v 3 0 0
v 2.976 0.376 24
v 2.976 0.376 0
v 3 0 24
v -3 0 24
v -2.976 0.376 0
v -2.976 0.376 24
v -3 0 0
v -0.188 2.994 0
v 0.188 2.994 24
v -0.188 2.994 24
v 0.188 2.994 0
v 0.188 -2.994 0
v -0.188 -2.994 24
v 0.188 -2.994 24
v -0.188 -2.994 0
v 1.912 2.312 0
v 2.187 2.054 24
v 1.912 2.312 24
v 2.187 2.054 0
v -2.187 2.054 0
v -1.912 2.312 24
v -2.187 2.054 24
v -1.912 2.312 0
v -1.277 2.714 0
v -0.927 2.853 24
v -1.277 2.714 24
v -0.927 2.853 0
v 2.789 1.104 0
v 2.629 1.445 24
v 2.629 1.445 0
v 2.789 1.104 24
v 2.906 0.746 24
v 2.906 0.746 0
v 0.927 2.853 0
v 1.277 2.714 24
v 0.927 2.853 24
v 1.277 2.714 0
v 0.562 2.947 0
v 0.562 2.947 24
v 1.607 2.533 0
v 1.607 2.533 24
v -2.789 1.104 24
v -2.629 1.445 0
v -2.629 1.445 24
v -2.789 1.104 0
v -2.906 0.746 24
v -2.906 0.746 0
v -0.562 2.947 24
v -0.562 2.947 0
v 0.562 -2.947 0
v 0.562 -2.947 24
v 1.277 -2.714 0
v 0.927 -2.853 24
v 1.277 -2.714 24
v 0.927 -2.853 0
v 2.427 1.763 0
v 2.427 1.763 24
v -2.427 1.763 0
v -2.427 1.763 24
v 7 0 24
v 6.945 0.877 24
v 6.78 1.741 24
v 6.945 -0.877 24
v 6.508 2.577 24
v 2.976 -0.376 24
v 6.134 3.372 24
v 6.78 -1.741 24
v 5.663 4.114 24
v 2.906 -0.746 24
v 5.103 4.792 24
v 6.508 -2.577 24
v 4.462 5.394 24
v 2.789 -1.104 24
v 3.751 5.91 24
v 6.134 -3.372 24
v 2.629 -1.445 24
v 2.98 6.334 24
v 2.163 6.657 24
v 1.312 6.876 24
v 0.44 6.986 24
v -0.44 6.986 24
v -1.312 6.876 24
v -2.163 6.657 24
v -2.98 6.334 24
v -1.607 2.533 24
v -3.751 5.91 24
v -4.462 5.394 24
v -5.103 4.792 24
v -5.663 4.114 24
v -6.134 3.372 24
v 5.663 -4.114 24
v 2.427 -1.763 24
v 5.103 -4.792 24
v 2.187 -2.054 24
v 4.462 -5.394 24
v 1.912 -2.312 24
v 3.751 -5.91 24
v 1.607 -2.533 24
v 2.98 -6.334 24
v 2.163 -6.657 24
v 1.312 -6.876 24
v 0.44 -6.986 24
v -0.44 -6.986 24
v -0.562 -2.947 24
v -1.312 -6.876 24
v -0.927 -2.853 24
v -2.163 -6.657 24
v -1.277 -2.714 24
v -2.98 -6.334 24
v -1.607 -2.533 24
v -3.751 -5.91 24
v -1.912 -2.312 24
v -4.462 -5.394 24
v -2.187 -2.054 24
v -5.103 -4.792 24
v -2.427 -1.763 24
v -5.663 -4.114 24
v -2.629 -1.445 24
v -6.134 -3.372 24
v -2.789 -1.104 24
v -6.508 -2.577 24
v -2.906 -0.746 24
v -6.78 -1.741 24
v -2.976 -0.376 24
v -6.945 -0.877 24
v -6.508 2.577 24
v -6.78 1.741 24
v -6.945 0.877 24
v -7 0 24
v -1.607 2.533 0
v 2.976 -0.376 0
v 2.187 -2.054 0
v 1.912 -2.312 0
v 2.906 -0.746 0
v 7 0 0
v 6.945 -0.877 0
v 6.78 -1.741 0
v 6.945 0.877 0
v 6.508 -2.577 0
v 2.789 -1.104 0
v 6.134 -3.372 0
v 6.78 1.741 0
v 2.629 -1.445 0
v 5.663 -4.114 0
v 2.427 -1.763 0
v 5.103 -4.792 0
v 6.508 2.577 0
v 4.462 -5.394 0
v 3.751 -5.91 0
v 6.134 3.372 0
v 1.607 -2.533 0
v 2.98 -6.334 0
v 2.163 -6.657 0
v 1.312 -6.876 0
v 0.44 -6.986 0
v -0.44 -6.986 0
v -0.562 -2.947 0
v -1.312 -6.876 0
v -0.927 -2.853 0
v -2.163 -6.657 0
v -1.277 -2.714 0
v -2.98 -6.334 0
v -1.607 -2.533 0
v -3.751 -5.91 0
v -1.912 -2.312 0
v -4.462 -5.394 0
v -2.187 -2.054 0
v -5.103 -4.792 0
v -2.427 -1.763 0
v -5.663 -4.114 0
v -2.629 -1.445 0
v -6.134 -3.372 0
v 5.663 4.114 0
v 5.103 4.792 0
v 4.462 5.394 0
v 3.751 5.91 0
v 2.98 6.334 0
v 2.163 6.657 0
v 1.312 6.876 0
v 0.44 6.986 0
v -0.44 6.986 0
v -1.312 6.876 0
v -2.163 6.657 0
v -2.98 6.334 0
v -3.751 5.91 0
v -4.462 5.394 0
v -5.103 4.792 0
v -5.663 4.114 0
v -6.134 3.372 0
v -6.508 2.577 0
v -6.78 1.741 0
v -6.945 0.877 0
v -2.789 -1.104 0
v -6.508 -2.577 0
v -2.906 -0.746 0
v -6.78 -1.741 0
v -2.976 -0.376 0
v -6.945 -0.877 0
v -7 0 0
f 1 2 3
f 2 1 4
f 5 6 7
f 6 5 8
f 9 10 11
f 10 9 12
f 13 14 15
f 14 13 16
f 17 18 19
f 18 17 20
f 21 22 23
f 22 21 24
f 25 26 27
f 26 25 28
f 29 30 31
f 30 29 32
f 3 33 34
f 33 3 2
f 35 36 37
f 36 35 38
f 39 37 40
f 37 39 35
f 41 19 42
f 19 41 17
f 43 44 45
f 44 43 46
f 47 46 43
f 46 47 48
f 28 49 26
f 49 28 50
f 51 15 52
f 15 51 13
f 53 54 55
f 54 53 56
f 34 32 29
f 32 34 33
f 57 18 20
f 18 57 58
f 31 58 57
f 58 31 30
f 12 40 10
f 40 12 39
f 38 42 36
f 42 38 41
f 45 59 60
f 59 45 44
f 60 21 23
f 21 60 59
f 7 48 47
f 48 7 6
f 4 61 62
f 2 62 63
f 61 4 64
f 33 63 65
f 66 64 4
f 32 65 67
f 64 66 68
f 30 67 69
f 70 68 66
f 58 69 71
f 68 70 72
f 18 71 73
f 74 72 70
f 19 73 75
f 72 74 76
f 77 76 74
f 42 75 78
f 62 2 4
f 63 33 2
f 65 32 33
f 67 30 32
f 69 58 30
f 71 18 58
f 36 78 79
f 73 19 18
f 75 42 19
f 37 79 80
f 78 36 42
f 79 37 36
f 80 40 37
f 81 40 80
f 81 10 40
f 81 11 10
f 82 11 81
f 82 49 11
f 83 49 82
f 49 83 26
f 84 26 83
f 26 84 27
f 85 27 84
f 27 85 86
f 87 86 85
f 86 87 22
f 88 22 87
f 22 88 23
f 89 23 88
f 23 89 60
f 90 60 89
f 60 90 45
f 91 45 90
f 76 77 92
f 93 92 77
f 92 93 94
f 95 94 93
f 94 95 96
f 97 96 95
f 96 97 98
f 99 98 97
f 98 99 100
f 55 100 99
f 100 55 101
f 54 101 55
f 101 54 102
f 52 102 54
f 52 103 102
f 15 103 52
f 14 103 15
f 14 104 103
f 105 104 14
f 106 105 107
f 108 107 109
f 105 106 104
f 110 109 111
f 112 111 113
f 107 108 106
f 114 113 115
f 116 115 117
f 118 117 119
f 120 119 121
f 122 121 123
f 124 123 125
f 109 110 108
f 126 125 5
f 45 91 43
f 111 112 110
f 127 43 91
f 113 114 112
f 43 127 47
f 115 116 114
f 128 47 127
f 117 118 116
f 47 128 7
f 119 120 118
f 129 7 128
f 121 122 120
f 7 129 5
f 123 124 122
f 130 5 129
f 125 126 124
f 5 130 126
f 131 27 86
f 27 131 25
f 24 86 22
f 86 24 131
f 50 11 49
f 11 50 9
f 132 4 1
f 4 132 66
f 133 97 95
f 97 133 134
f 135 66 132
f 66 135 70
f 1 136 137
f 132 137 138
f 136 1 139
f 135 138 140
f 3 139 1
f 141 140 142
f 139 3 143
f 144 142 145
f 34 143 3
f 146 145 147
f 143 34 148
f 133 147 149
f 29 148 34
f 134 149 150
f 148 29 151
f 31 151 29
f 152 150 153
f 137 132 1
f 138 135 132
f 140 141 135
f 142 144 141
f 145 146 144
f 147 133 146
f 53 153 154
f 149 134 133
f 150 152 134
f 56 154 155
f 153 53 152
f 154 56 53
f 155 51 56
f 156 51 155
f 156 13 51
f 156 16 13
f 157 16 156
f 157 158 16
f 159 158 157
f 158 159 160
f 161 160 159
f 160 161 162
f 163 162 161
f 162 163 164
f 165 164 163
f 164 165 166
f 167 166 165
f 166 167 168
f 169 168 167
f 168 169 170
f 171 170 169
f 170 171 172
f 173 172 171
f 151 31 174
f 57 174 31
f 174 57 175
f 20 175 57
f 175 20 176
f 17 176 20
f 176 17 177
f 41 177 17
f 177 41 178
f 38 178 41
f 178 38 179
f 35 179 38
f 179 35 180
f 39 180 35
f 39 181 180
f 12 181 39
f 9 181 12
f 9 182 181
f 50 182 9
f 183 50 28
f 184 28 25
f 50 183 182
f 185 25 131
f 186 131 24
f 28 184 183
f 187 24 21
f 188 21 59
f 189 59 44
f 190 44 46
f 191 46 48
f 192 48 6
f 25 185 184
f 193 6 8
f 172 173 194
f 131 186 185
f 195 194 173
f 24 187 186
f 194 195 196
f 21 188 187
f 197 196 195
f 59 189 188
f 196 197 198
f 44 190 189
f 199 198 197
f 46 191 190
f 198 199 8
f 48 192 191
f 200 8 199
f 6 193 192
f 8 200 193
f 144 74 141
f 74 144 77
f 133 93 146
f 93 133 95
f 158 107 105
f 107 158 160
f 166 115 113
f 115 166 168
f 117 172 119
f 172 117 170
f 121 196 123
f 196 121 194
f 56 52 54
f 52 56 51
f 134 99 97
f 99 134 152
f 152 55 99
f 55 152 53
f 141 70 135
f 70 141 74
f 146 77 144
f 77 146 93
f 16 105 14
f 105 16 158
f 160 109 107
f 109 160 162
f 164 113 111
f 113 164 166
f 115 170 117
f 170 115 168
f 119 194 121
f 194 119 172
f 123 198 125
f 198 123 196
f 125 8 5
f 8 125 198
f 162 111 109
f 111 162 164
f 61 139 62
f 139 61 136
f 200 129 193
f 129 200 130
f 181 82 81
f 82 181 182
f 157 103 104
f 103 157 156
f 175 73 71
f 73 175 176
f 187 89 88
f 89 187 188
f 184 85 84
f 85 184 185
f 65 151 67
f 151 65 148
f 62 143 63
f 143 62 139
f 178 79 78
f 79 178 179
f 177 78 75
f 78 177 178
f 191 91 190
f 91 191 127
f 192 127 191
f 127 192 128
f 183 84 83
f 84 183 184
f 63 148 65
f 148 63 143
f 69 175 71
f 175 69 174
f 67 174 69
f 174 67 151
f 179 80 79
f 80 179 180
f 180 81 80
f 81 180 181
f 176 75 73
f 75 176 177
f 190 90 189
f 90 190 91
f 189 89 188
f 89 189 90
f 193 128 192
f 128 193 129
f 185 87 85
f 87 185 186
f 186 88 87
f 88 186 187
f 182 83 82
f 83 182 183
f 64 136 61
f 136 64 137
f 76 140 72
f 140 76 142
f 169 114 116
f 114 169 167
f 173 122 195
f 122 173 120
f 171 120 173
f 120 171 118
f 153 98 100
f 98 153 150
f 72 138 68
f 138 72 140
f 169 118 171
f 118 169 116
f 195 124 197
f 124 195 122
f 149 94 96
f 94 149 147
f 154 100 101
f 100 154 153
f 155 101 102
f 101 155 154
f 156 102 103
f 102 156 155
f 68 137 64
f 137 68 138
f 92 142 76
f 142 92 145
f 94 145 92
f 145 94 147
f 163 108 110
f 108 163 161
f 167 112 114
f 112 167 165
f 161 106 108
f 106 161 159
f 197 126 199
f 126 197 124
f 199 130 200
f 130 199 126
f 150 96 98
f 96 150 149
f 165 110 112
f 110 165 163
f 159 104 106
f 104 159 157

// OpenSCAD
$fn = 50;


difference() {
	union() {
		cylinder(h = 24, r = 7.0000000000);
	}
	union() {
		cylinder(h = 24, r = 3.0000000000);
		cylinder(h = 24, r = 3.0000000000);
		cylinder(h = 24, r = 1.5000000000);
		cylinder(h = 24, r = 1.5000000000);
		cylinder(h = 24, r = 1.5000000000);
		cylinder(h = 24, r = 1.5000000000);
		cylinder(h = 24, r = 1.5000000000);
		cylinder(h = 24, r = 1.5000000000);
	}
}
